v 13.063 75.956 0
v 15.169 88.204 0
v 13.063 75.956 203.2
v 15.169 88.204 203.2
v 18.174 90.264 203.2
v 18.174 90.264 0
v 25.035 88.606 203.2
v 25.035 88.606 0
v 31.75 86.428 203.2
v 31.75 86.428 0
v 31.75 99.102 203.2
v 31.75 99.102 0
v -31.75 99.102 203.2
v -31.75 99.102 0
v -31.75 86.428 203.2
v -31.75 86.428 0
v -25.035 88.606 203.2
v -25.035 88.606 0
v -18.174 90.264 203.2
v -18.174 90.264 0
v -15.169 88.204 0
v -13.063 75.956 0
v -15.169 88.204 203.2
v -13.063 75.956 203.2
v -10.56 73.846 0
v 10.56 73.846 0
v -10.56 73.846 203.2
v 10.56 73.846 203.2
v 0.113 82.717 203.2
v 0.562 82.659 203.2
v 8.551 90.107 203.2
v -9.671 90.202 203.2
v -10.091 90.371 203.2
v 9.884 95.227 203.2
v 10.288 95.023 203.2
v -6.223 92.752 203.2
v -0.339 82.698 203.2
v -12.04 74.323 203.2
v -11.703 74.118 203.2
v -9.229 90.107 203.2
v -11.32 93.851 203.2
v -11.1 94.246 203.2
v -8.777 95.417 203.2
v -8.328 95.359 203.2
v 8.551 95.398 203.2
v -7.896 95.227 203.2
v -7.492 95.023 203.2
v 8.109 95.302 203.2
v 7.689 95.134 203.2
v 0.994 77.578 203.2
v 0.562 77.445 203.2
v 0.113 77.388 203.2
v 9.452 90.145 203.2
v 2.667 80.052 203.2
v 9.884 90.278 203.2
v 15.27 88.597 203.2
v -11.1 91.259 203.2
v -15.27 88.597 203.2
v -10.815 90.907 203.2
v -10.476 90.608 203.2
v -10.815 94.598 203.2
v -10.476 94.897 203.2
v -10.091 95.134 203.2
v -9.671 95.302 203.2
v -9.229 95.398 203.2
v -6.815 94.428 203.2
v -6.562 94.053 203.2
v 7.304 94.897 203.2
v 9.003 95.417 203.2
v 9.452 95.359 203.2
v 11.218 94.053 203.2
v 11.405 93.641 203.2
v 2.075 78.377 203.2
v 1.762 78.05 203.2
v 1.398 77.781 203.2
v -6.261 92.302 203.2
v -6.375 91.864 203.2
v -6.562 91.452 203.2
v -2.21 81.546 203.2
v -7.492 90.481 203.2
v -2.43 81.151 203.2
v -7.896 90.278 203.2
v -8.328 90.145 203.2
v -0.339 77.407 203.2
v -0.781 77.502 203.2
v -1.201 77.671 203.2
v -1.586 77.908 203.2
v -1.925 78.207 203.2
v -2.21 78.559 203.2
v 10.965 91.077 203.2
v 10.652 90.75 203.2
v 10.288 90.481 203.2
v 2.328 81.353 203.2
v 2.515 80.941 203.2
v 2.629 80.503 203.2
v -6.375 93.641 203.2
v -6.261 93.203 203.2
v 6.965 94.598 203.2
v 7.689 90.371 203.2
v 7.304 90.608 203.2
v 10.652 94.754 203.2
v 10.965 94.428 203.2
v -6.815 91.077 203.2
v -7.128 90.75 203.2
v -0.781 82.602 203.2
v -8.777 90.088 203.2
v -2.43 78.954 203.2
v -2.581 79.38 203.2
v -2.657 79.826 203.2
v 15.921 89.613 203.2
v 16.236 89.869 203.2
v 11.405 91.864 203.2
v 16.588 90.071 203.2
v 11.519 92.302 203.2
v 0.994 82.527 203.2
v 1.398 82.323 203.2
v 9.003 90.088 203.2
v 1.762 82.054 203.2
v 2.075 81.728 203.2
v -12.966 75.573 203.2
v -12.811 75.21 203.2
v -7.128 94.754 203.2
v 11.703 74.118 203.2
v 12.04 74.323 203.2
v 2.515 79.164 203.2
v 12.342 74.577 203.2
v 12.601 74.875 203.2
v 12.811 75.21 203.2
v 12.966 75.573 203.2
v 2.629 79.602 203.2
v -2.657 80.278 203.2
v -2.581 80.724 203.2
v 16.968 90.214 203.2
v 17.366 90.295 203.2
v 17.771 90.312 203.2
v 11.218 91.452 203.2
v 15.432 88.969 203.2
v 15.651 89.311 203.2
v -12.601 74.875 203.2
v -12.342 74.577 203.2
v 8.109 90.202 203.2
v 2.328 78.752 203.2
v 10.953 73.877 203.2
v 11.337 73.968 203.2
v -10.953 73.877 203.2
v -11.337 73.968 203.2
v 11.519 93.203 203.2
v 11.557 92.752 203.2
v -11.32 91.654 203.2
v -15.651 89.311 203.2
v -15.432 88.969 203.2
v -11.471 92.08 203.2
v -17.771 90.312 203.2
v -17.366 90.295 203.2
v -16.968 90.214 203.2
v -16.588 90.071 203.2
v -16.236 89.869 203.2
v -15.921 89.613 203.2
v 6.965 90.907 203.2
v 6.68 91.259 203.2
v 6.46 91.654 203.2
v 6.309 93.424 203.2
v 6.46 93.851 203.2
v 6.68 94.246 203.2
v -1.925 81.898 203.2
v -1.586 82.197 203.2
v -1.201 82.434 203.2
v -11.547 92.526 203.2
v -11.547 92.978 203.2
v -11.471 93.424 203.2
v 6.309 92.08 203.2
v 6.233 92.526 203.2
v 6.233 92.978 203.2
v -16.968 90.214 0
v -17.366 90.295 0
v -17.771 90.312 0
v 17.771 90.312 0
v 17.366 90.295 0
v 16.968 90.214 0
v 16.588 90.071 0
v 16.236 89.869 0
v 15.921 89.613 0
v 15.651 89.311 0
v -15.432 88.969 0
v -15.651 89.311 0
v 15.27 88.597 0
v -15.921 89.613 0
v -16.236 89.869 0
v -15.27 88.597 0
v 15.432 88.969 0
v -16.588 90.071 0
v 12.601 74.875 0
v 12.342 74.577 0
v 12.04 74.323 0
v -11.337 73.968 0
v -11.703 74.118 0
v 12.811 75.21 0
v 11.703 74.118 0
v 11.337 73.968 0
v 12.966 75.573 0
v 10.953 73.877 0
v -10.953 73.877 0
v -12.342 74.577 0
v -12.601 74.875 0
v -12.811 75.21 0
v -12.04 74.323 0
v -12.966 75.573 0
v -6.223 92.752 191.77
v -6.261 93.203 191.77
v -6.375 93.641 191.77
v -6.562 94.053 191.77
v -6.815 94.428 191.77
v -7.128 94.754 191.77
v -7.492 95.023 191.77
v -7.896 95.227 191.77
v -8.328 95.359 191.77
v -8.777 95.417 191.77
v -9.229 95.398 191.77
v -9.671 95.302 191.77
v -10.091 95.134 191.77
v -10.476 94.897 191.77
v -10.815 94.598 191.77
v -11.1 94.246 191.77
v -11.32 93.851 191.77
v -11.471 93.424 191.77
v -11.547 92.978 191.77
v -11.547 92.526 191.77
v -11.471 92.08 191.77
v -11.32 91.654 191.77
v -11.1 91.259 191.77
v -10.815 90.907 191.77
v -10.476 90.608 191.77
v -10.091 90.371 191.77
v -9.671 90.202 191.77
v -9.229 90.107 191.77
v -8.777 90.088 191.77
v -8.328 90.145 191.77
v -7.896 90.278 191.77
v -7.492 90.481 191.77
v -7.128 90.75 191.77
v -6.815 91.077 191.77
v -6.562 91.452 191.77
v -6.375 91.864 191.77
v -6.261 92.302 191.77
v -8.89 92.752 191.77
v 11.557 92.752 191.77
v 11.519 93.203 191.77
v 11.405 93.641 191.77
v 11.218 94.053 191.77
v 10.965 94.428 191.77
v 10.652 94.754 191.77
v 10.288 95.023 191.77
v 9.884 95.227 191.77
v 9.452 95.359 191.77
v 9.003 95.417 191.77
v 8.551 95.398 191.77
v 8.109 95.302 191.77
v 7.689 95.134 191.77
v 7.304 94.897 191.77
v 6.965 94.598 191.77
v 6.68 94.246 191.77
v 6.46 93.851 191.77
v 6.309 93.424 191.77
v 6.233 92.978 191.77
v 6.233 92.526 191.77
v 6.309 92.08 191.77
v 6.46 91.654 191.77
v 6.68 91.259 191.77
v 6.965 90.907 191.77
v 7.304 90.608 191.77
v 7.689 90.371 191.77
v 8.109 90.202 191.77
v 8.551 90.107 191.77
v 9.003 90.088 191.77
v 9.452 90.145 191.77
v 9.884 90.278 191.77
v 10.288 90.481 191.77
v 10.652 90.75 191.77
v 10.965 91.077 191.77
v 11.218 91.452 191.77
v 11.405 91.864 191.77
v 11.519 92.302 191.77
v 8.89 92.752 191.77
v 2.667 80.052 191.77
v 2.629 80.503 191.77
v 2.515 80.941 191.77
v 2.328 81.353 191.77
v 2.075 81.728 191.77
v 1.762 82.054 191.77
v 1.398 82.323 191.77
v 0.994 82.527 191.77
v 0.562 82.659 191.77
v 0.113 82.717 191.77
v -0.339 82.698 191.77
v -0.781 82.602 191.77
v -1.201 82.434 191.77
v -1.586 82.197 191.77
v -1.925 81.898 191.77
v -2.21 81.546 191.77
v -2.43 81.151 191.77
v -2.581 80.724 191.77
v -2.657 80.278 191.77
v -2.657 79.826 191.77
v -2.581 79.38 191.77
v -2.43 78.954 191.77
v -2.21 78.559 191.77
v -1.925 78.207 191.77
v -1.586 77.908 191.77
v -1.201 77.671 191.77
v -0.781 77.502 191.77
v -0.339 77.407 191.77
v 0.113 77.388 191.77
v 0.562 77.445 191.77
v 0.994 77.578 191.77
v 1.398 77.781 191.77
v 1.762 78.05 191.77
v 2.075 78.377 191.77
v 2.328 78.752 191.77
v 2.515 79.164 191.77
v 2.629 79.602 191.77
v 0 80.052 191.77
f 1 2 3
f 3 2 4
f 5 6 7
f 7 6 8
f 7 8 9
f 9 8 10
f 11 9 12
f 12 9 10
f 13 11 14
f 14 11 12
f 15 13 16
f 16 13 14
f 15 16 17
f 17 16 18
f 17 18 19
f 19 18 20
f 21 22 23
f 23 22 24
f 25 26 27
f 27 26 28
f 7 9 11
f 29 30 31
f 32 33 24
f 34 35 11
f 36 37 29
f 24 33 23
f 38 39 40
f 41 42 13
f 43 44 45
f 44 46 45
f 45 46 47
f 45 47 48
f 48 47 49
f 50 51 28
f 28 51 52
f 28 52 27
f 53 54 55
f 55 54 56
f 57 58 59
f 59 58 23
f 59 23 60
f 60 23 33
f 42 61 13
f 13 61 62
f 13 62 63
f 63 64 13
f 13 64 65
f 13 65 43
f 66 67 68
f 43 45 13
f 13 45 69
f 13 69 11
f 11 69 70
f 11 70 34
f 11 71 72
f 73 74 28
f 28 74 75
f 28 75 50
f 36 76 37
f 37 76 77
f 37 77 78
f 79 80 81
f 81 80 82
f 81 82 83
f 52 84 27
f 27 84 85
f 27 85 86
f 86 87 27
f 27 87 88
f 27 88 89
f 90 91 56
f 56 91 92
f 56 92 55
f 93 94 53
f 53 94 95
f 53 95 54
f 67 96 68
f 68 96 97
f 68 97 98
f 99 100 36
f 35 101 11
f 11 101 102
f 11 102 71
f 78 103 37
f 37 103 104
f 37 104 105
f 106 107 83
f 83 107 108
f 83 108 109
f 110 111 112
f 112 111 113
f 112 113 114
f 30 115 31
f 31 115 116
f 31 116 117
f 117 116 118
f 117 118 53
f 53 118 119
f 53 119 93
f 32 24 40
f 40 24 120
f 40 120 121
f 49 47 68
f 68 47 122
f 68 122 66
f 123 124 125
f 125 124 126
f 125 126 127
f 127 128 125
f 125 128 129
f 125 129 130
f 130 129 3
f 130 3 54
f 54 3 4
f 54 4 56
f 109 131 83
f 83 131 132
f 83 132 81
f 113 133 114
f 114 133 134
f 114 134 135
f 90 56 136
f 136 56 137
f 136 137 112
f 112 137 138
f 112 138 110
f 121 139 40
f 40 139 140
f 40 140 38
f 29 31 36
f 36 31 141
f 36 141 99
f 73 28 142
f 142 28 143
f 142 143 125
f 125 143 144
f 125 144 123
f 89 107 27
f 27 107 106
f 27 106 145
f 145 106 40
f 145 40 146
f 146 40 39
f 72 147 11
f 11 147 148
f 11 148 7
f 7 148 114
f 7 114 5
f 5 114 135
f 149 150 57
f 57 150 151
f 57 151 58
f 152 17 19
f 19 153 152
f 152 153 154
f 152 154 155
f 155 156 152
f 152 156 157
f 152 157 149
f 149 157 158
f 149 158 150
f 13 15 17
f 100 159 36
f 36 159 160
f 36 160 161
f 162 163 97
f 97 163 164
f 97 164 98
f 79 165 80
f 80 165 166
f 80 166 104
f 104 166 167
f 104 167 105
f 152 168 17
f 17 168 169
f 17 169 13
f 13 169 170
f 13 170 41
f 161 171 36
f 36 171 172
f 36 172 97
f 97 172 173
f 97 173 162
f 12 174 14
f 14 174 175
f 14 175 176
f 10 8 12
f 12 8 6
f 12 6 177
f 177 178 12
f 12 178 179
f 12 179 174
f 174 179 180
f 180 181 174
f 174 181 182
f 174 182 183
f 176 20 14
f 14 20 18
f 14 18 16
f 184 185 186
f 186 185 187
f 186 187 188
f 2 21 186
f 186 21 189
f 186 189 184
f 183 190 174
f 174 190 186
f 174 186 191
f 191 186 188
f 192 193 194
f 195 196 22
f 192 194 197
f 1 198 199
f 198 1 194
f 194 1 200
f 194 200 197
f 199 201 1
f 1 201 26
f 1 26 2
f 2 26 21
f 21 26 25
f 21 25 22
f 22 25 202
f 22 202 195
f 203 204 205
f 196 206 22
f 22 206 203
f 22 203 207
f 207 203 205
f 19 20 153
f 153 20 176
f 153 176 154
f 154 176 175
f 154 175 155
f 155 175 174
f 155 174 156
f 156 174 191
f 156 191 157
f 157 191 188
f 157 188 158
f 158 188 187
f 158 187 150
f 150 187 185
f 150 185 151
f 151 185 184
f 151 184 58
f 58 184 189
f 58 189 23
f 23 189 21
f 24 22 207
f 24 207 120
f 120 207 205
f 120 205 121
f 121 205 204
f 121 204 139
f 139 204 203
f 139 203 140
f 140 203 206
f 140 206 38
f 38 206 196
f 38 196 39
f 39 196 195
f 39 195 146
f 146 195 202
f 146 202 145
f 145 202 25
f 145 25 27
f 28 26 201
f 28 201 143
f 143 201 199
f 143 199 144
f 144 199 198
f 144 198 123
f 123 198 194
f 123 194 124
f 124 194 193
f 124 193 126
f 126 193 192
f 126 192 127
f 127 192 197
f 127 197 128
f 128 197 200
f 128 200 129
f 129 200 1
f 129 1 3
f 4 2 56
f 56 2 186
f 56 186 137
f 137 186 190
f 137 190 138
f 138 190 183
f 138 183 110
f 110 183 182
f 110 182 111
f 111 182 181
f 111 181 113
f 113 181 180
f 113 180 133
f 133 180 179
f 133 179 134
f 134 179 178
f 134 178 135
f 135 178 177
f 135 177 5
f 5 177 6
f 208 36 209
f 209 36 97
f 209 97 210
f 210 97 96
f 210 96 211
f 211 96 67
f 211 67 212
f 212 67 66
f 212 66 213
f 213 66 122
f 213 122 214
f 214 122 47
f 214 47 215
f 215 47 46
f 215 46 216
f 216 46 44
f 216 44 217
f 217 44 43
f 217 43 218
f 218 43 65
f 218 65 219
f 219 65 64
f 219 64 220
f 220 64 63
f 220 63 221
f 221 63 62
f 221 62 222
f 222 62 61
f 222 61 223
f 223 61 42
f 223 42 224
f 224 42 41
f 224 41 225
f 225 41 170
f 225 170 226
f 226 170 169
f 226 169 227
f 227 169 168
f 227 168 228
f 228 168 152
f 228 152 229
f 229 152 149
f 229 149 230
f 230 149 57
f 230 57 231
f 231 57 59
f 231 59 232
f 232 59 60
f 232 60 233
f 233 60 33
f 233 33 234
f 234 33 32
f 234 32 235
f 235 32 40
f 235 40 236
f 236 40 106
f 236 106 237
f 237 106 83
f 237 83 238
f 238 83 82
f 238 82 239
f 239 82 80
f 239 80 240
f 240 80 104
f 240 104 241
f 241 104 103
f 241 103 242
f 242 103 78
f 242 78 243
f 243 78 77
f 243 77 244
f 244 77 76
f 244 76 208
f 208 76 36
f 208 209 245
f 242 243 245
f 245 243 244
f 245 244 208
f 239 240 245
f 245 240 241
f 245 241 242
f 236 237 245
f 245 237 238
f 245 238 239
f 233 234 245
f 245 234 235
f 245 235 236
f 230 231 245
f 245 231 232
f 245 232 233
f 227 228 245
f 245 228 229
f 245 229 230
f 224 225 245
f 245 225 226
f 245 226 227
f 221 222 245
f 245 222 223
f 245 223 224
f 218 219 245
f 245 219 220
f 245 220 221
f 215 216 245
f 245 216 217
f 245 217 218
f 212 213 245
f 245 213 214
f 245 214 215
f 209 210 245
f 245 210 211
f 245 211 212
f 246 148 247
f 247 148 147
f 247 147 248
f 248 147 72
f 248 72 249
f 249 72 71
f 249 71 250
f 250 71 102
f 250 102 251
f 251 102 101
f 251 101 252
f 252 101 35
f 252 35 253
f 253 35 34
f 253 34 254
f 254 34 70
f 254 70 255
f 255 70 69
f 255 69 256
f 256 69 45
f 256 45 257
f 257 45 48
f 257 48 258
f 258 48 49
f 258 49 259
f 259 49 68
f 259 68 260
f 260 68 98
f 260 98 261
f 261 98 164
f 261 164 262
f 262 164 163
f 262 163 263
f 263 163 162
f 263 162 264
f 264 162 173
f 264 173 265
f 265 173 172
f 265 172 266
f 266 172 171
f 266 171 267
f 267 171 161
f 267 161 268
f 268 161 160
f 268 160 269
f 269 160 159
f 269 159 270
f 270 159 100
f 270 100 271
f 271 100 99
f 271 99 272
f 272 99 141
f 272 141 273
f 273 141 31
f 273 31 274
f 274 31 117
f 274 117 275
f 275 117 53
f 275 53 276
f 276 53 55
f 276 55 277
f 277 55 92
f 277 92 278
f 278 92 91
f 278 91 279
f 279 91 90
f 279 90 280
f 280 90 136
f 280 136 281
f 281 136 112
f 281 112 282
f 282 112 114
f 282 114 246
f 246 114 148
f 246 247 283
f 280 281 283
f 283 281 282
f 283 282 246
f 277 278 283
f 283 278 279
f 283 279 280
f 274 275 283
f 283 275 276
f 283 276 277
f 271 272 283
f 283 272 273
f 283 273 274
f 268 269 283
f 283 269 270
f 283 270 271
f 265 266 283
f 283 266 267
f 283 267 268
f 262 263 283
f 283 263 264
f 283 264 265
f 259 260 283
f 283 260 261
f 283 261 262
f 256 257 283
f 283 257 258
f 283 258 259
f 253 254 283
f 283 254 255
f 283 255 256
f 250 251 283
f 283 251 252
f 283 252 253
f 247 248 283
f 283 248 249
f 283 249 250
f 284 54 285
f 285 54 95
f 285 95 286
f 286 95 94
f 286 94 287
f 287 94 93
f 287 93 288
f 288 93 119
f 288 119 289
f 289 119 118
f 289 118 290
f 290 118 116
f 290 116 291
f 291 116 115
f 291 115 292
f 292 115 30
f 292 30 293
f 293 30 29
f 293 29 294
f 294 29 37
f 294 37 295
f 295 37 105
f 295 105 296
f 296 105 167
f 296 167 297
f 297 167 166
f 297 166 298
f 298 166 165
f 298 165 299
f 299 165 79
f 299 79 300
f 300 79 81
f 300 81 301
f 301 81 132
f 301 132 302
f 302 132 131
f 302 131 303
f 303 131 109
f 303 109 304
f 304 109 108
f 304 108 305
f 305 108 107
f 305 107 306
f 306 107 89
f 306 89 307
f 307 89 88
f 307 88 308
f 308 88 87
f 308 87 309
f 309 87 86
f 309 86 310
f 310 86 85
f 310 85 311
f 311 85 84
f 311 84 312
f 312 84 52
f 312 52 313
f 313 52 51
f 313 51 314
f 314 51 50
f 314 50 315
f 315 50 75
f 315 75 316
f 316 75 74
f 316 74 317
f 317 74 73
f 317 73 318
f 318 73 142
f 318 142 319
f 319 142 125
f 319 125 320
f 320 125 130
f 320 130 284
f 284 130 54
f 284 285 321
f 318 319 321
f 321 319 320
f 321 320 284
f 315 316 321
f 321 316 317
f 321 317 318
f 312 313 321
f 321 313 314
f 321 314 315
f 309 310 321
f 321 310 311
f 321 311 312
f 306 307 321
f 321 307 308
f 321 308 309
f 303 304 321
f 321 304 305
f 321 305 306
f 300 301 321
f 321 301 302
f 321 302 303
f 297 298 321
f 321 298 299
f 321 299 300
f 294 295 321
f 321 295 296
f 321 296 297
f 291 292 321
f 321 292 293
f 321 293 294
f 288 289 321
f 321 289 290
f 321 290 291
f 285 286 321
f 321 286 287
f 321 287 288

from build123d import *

# Parameters (mm, degrees)
BOSS_EXTRUDE1_DEPTH = 203.2
FILLET1_R           = 2.54
SKETCH2_R           = 2.667
CUT_EXTRUDE1_DEPTH  = 11.43


with BuildPart() as part:
    # Sketch1 → Boss-Extrude1 (new body)
    with BuildSketch(Plane.XY):
        with BuildLine():
            Line((-12.7, 73.846320157), (12.7, 73.846320157))
            Line((12.7, 73.846320157), (15.605843118, 90.742841512))
            ThreePointArc((15.605843118, 90.742841512), (23.776020133, 88.952270863), (31.75, 86.427675689))
            Line((31.75, 86.427675689), (31.75, 99.102275689))
            Line((31.75, 99.102275689), (-31.75, 99.102275689))
            Line((-31.75, 99.102275689), (-31.75, 86.427675689))
            ThreePointArc((-31.75, 86.427675689), (-23.776020133, 88.952270863), (-15.605843118, 90.742841512))
            Line((-15.605843118, 90.742841512), (-12.7, 73.846320157))
        make_face()
    extrude(amount=BOSS_EXTRUDE1_DEPTH)

    # Fillet1
    fillet1_edges = [part.edges().sort_by_distance(p)[0] for p in [
        (12.7, 73.846320157, 101.6),
        (-12.7, 73.846320157, 101.6),
        (-15.605843118, 90.742841512, 101.6),
        (15.605843118, 90.742841512, 101.6),
    ]]
    fillet(fillet1_edges, radius=FILLET1_R)

    # Sketch2 → Cut-Extrude1 (cut)
    with BuildSketch(Plane.XY.offset(203.2)):
        with Locations((-8.89, 92.752275689)):
            Circle(SKETCH2_R)
        with Locations((8.89, 92.752275689)):
            Circle(SKETCH2_R)
        with Locations((0, 80.052275689)):
            Circle(SKETCH2_R)
    extrude(amount=-CUT_EXTRUDE1_DEPTH, mode=Mode.SUBTRACT)


solid = part.part
